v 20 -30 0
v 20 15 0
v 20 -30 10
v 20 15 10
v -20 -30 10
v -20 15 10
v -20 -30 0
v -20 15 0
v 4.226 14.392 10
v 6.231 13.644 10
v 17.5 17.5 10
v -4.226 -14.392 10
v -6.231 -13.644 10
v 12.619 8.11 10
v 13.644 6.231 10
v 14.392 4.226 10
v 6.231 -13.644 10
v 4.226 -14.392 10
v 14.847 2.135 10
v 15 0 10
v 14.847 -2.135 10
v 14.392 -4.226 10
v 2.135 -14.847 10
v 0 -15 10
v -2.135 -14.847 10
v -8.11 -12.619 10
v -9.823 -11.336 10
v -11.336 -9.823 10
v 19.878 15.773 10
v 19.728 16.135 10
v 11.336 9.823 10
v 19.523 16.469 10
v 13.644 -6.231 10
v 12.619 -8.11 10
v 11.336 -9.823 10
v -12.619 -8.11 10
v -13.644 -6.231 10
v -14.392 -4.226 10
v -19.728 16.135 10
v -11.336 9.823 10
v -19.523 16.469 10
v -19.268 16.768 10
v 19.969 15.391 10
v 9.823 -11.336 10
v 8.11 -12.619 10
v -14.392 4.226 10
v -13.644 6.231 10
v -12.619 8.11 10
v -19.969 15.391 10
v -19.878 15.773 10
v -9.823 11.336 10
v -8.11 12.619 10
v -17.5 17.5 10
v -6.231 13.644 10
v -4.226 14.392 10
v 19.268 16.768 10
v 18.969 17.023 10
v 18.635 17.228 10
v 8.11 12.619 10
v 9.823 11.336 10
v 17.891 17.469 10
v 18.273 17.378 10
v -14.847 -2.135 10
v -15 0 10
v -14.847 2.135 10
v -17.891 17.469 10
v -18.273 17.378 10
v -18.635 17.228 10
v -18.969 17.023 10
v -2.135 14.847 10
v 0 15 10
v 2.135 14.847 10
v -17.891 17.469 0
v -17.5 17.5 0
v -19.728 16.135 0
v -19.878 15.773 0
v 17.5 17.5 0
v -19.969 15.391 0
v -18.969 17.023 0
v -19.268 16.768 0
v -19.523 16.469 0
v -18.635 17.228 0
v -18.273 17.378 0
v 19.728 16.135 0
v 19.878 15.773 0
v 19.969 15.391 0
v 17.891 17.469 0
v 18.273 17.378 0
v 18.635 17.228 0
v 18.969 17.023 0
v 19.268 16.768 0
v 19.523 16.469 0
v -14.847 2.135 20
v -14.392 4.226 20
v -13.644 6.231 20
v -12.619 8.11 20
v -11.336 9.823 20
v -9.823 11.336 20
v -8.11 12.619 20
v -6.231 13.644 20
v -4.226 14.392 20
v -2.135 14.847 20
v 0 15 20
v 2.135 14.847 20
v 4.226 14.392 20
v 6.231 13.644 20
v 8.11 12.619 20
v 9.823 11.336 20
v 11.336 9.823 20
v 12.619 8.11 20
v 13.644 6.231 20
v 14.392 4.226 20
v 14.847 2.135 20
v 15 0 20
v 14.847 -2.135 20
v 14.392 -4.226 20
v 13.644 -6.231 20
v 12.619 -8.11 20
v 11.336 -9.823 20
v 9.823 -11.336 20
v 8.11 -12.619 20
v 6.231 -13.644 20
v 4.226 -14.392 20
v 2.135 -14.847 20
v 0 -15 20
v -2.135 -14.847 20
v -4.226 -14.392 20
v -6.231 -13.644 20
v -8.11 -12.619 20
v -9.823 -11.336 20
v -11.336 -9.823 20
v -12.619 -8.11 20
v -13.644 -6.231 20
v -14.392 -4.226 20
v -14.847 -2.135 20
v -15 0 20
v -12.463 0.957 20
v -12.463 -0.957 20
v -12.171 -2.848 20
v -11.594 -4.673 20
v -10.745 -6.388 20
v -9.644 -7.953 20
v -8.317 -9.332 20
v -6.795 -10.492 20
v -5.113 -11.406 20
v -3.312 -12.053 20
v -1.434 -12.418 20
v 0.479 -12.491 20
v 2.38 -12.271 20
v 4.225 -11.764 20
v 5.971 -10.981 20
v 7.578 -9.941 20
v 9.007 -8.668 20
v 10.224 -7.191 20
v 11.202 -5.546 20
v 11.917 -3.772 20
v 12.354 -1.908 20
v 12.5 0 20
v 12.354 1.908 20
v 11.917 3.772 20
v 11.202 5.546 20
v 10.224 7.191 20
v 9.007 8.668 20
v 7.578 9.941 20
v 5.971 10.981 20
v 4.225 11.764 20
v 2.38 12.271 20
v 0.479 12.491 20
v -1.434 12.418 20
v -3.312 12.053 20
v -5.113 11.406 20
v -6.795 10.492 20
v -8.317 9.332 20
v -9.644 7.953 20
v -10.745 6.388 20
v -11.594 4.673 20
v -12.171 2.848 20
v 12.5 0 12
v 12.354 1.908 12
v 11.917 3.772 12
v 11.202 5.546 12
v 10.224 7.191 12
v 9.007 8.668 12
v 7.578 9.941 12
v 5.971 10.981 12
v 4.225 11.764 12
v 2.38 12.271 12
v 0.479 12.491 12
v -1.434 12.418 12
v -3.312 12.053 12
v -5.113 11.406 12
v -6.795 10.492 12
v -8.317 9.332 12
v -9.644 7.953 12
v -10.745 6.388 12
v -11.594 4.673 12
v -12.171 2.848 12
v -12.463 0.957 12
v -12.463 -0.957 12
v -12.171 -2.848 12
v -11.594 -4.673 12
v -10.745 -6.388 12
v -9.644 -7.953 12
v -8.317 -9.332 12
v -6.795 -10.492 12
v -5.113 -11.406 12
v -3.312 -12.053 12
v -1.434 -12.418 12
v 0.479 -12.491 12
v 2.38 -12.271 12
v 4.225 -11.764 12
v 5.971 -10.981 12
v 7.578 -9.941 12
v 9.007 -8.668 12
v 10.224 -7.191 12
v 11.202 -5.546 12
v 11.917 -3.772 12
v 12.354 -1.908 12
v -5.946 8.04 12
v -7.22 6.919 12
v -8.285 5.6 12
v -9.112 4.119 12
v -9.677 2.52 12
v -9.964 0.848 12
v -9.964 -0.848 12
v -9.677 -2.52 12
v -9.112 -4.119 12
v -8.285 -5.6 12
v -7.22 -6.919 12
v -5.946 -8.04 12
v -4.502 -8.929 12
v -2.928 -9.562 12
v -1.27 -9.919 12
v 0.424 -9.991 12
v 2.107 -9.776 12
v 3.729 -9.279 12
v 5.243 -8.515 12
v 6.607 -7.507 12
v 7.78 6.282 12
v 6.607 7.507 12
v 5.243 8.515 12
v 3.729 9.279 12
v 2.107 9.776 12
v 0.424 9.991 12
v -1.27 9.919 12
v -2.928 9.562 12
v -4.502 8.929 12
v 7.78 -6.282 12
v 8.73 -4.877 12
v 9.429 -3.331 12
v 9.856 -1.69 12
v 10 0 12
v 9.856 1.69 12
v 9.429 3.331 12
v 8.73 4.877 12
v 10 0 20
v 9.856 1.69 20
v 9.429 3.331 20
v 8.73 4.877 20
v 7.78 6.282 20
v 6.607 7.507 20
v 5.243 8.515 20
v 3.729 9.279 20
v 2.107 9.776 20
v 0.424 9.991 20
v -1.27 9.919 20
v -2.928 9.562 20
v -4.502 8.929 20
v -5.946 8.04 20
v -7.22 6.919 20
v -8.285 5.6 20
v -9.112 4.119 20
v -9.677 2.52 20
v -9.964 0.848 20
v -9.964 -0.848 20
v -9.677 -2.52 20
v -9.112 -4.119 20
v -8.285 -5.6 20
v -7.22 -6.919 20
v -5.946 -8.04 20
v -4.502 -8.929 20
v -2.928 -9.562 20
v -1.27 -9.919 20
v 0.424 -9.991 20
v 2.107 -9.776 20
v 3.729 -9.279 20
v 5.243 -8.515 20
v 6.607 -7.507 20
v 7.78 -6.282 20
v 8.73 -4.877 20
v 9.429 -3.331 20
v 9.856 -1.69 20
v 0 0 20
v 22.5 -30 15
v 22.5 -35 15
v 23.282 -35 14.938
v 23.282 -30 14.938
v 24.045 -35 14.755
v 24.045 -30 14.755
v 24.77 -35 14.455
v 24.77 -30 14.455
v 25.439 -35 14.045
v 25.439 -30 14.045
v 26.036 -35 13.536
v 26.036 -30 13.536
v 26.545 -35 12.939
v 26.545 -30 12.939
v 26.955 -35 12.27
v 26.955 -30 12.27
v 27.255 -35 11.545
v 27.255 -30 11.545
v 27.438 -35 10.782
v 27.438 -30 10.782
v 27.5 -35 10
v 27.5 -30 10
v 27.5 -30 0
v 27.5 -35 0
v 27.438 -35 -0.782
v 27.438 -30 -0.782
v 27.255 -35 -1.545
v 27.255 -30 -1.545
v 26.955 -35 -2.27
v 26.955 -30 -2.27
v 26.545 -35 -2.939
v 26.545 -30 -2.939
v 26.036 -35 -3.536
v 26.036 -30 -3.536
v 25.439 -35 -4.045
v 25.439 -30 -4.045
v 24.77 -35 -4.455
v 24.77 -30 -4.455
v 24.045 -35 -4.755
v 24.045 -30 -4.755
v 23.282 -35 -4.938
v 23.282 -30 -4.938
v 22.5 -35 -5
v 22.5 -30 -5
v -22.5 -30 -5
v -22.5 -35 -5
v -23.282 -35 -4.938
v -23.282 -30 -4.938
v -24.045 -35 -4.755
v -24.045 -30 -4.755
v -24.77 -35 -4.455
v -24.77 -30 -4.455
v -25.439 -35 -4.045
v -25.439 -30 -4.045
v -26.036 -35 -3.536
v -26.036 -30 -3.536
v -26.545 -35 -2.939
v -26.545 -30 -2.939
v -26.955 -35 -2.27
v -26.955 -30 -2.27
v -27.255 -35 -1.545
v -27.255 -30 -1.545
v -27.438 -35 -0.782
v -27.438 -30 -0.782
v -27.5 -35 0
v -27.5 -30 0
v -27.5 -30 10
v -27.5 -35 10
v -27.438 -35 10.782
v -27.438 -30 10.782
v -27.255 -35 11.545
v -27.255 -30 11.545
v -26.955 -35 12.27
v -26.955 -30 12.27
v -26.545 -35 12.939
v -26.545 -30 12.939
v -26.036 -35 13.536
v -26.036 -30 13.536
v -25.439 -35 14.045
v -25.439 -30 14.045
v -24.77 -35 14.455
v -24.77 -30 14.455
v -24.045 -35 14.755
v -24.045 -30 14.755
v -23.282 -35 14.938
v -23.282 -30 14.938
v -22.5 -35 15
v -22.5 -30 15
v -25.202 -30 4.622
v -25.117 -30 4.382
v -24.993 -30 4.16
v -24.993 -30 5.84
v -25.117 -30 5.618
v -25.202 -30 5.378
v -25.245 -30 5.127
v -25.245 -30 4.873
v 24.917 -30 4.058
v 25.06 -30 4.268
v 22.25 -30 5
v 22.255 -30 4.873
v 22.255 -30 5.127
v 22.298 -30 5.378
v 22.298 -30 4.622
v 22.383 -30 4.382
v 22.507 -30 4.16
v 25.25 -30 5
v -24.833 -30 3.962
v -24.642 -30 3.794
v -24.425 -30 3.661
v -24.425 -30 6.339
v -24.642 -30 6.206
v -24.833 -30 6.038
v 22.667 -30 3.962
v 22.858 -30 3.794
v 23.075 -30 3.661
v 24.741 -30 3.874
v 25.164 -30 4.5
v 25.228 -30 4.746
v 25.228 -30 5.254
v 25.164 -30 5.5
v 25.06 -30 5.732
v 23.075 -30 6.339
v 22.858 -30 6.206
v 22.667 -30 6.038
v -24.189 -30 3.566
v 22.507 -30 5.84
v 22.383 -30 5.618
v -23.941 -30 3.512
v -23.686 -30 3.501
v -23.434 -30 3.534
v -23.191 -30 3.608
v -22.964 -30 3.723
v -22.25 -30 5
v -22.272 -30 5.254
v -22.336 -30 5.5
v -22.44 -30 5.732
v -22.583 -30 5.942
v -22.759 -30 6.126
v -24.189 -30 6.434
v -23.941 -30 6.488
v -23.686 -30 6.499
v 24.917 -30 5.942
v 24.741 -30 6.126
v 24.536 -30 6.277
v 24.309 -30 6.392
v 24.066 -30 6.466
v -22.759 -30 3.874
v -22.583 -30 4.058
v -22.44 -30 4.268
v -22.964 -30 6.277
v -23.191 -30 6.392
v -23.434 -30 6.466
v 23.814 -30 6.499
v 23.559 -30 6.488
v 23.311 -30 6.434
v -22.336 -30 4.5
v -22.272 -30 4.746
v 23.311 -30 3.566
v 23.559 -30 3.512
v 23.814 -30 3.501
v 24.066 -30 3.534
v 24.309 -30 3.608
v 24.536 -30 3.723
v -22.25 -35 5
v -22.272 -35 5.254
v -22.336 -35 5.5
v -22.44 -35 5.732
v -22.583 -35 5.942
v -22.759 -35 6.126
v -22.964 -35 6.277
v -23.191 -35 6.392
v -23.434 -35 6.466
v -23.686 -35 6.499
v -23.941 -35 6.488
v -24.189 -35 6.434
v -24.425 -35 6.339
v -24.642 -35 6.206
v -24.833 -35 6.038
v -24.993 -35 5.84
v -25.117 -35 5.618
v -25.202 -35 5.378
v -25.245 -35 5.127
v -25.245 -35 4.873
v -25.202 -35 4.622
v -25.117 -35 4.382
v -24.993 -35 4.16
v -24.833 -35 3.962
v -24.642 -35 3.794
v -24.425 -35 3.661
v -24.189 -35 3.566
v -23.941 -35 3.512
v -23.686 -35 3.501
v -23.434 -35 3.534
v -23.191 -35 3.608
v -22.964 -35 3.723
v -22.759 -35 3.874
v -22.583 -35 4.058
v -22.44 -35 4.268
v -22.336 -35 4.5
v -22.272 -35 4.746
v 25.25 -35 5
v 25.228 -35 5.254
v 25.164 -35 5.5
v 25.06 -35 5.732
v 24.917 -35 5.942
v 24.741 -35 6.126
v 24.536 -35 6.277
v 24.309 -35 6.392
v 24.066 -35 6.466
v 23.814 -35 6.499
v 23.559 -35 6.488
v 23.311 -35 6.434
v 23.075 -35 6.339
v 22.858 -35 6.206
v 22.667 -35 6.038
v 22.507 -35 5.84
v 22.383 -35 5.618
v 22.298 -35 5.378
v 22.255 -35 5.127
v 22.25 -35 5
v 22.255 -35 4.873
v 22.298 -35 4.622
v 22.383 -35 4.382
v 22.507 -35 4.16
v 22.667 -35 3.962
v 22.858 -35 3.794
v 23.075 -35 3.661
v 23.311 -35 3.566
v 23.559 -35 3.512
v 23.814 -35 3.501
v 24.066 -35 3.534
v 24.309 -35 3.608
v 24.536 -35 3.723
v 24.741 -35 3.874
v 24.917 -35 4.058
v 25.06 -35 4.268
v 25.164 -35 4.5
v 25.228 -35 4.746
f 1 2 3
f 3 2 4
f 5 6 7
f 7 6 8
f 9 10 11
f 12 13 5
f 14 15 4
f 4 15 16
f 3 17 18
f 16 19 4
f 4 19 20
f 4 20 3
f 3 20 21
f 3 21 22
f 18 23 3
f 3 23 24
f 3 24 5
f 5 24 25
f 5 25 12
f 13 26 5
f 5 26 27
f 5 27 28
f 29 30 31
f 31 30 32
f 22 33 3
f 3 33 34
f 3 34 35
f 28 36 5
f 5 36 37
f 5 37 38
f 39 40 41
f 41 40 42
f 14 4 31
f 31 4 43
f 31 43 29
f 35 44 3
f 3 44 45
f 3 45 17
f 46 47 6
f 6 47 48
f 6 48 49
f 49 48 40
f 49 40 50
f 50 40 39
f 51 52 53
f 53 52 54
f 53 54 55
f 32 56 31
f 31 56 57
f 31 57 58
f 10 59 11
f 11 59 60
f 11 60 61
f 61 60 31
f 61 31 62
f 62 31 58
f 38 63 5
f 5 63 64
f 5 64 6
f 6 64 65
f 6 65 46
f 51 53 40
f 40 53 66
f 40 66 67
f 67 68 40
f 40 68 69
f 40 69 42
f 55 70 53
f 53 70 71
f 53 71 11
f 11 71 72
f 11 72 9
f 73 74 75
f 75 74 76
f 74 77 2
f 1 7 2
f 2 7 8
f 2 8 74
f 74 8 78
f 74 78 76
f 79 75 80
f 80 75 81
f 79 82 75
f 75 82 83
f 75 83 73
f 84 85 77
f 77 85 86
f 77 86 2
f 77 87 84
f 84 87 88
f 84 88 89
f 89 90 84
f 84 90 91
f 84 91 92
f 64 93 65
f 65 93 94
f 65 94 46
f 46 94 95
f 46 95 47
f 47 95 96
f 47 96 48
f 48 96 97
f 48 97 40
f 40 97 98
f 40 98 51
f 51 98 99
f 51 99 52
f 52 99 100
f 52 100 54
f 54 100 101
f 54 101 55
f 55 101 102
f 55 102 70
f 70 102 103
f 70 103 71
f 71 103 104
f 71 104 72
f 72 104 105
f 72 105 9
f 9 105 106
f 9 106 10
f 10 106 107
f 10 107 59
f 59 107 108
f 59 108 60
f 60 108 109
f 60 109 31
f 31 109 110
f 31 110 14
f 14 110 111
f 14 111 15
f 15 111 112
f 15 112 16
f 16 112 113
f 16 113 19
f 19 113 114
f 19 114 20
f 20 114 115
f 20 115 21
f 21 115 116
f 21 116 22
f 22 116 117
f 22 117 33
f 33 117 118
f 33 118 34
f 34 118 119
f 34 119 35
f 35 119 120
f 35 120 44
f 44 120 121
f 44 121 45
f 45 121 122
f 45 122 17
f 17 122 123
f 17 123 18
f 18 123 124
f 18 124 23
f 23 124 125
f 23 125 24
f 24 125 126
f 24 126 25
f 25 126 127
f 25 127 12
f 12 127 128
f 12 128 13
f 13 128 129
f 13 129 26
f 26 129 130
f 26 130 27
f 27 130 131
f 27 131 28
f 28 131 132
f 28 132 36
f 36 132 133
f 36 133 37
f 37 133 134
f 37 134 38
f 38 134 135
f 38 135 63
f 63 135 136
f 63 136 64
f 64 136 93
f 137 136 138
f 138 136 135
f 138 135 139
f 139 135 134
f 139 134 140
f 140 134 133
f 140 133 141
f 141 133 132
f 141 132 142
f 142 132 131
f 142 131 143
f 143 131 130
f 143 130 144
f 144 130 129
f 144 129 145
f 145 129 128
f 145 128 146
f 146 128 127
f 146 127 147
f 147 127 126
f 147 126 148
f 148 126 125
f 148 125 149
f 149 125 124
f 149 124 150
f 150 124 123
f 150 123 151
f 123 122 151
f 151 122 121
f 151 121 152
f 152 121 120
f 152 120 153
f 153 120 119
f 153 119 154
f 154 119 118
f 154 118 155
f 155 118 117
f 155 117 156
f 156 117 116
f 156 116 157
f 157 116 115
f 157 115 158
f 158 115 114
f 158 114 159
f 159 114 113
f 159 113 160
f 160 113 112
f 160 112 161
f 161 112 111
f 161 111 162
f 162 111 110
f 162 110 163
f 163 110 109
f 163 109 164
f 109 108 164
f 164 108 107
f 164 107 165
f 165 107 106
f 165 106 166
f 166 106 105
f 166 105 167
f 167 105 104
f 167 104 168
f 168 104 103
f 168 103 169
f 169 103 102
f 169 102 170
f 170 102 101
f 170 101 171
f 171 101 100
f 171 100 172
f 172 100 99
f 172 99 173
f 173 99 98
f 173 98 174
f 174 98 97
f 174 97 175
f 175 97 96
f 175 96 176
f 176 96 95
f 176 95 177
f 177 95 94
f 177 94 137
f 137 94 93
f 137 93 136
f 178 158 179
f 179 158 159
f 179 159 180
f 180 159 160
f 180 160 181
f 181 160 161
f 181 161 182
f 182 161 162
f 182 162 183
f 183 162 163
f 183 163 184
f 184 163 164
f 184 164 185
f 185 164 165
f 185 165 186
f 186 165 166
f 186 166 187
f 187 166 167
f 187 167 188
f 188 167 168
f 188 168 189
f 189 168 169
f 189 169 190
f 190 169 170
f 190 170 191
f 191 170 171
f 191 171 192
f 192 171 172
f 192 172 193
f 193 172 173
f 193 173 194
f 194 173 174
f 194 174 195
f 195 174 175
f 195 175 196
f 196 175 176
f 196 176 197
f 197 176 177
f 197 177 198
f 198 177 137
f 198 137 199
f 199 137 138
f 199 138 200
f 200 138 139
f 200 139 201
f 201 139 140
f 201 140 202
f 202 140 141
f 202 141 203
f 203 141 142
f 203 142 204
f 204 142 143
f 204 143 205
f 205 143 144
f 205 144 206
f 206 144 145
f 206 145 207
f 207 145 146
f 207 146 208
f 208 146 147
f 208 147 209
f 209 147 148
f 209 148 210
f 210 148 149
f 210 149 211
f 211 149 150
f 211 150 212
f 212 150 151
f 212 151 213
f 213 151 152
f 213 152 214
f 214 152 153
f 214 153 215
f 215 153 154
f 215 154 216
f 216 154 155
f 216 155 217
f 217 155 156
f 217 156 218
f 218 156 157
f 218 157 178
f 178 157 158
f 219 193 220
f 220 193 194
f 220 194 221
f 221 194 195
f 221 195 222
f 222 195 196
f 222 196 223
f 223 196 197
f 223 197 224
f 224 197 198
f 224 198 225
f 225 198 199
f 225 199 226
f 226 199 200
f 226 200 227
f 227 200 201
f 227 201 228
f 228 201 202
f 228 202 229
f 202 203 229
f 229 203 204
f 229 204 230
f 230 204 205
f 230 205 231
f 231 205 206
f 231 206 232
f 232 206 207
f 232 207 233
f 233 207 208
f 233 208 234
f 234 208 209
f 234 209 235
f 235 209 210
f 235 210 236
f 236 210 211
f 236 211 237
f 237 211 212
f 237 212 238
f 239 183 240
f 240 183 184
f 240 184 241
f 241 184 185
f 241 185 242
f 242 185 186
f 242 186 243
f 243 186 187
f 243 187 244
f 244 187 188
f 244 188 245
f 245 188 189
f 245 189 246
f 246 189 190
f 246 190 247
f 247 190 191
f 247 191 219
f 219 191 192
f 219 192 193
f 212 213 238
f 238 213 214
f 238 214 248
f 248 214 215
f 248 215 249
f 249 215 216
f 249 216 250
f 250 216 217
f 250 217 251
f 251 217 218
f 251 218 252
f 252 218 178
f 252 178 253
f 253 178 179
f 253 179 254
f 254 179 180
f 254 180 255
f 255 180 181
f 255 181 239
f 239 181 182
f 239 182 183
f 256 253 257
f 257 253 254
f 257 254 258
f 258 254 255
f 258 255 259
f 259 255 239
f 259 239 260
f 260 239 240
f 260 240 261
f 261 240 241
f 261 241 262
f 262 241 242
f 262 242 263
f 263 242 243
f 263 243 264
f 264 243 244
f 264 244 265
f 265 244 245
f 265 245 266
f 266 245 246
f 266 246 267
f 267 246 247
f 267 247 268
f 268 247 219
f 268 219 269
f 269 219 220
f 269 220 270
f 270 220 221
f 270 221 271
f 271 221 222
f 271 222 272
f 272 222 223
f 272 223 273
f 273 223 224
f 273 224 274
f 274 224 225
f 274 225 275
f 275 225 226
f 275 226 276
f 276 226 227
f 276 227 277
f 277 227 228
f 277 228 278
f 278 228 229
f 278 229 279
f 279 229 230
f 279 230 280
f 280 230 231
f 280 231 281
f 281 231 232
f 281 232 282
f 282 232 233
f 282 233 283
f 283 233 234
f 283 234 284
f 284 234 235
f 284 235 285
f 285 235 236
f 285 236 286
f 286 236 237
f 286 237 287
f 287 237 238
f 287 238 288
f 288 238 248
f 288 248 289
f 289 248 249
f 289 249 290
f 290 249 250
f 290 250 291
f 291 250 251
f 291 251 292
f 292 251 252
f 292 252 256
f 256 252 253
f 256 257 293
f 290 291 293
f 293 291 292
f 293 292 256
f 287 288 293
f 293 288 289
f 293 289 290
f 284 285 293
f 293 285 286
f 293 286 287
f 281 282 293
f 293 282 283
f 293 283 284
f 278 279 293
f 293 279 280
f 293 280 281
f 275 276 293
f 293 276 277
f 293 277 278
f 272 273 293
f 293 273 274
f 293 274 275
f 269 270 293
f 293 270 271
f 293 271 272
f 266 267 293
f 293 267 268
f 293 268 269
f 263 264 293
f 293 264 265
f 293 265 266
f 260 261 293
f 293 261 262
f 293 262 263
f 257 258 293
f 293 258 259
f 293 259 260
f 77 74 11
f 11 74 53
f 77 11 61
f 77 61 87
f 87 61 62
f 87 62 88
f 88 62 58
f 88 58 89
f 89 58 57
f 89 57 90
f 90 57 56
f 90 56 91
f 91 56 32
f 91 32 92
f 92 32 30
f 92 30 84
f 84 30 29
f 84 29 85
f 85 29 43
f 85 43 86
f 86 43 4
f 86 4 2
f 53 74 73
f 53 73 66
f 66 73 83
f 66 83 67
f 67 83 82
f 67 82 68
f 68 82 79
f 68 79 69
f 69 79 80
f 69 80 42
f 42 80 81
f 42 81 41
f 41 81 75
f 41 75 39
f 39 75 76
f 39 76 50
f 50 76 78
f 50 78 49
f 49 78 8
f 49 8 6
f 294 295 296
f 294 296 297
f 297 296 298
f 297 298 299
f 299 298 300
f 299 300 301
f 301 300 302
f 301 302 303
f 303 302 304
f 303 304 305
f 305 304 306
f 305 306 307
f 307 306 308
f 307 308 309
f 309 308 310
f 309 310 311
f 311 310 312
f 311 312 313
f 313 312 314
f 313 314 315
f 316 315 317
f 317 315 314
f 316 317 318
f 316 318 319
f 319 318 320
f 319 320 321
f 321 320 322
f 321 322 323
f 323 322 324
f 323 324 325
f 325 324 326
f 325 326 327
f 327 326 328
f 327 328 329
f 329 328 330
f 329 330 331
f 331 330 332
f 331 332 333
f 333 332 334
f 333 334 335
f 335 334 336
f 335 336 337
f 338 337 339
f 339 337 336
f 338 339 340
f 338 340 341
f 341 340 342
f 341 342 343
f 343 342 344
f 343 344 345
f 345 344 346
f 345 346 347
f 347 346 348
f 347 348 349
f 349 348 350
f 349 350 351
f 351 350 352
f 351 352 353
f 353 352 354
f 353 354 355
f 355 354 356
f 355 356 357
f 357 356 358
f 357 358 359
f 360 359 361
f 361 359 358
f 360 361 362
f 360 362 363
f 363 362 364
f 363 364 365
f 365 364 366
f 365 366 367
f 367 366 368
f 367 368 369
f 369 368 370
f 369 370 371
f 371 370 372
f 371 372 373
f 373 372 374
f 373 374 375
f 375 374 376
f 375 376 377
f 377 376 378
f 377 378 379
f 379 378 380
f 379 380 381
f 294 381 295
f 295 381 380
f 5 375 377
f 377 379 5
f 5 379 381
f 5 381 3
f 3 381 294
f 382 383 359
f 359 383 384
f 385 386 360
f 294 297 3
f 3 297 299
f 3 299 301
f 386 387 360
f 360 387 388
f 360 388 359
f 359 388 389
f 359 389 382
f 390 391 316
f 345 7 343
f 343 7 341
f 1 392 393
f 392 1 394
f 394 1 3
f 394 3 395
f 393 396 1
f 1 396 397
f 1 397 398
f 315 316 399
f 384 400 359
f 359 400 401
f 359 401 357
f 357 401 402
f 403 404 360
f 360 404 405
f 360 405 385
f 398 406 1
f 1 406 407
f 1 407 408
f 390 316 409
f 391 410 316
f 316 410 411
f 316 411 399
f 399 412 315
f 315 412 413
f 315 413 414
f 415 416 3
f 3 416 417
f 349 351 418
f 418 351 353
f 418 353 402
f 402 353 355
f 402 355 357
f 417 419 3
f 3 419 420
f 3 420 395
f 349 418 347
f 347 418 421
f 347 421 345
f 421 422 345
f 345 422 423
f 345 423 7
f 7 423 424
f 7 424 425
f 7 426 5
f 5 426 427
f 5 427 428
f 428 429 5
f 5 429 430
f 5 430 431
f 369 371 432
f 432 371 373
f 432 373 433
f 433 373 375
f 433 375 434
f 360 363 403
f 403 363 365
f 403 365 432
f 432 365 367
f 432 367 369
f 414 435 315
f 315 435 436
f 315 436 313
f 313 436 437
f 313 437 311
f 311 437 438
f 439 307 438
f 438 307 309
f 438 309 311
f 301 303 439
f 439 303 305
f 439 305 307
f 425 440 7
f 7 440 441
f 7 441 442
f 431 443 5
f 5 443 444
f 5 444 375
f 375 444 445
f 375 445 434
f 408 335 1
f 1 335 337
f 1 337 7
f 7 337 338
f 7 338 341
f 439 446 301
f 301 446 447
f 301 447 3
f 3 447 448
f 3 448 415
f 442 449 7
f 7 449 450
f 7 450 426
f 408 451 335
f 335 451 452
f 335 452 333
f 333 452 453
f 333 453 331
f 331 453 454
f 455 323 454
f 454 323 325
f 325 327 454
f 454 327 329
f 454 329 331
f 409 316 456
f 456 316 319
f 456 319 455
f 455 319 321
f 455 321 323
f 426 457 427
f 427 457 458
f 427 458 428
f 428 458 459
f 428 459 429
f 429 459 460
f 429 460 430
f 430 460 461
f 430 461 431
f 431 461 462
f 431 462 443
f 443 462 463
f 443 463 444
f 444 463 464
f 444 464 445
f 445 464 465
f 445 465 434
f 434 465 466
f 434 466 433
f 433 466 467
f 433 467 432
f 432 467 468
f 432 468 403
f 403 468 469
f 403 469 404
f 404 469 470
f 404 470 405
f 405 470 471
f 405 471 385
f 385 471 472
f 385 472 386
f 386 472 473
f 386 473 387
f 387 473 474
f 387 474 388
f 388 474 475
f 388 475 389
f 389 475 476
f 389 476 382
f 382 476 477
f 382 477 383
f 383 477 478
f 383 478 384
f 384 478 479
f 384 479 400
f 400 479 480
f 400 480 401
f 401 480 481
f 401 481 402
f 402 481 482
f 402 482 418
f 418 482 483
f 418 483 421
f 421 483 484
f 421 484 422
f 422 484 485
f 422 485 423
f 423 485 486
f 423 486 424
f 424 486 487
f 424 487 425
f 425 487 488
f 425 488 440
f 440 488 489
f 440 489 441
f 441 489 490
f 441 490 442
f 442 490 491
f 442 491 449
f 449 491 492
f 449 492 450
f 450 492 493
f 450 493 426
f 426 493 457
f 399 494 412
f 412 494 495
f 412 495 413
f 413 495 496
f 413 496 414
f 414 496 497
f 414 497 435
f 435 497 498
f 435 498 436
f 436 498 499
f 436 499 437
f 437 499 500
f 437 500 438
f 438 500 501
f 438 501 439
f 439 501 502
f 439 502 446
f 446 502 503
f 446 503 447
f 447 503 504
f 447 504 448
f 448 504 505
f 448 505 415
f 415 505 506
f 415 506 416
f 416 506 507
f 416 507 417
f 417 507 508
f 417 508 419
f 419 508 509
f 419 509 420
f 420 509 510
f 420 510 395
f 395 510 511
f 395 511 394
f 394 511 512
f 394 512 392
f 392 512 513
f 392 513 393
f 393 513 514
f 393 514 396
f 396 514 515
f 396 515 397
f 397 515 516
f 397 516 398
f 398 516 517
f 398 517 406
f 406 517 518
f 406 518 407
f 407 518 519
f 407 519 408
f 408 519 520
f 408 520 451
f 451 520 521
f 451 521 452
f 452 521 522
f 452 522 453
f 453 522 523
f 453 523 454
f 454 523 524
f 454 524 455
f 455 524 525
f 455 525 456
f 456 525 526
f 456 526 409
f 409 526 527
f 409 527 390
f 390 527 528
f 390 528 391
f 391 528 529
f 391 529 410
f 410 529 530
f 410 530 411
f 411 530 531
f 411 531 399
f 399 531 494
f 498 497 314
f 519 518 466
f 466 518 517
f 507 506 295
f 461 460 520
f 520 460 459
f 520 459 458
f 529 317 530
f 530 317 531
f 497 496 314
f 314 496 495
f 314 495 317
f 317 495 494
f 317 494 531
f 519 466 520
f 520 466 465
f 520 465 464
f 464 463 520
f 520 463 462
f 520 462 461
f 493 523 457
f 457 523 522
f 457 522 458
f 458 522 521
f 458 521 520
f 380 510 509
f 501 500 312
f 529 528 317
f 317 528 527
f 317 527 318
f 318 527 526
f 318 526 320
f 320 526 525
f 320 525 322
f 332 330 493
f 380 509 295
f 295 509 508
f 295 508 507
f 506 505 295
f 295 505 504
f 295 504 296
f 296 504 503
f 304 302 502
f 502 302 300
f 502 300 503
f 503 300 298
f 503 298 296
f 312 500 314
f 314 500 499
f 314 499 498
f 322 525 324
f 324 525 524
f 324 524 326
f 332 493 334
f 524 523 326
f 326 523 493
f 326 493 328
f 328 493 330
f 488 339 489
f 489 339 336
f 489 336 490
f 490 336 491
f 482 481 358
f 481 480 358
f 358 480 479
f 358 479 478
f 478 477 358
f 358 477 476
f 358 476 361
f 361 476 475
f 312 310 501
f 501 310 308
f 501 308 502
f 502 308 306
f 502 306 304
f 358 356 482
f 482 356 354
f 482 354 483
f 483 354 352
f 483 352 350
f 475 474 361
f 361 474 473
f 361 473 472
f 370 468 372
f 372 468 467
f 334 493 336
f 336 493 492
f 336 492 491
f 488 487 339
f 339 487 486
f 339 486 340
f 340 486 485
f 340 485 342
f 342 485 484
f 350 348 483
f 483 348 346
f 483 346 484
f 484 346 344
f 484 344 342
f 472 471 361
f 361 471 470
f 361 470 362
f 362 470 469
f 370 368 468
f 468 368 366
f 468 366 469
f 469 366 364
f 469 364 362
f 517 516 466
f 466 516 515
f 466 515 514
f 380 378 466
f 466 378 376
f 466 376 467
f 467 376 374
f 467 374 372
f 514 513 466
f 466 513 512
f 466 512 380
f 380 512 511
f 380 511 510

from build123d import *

# Parameters (mm, degrees)
SKETCH1_W           = 40
SKETCH1_H           = 70
BOSS_EXTRUDE1_DEPTH = 10
SKETCH4_R           = 15
BOSS_EXTRUDE3_DEPTH = 10
SKETCH5_R           = 12.5
SKETCH5_R_2         = 10
CUT_EXTRUDE2_DEPTH  = 8
SKETCH6_W           = 40
SKETCH6_H           = 10
CUT_EXTRUDE3_DEPTH  = 17.5
FILLET4_R           = 2.5
SKETCH11_R          = 1.5
SKETCH11_W          = 40
SKETCH11_H          = 10
BOSS_EXTRUDE4_DEPTH = 5


with BuildPart() as part:
    # Sketch1 → Boss-Extrude1 (new body)
    with BuildSketch(Plane.XY):
        Rectangle(SKETCH1_W, SKETCH1_H)
    extrude(amount=BOSS_EXTRUDE1_DEPTH)

    # Sketch4 → Boss-Extrude3 (add)
    with BuildSketch(Plane.XY.offset(10)):
        Circle(SKETCH4_R)
    extrude(amount=BOSS_EXTRUDE3_DEPTH)

    # Sketch5 → Cut-Extrude2 (cut)
    with BuildSketch(Plane.XY.offset(20)):
        Circle(SKETCH5_R)
        Circle(SKETCH5_R_2, mode=Mode.SUBTRACT)
    extrude(amount=-CUT_EXTRUDE2_DEPTH, mode=Mode.SUBTRACT)

    # Sketch6 → Cut-Extrude3 (cut)
    with BuildSketch(Plane(origin=(0, 35, 0), x_dir=(1, 0, 0), z_dir=(0, 1, 0))):
        with Locations((0, -5)):
            Rectangle(SKETCH6_W, SKETCH6_H)
    extrude(amount=-CUT_EXTRUDE3_DEPTH, mode=Mode.SUBTRACT)

    # Fillet4
    fillet4_edges = [part.edges().sort_by_distance(p)[0] for p in [
        (-20, 17.5, 5),
        (20, 17.5, 5),
    ]]
    fillet(fillet4_edges, radius=FILLET4_R)

    # Sketch11 → Boss-Extrude4 (add)
    with BuildSketch(Plane.XZ.offset(35)):
        with BuildLine():
            Line((-22.5, 15), (22.5, 15))
            ThreePointArc((22.5, 15), (26.035533906, 13.535533906), (27.5, 10))
            Line((27.5, 10), (27.5, 0))
            ThreePointArc((27.5, 0), (26.035533906, -3.535533906), (22.5, -5))
            Line((22.5, -5), (-22.5, -5))
            ThreePointArc((-22.5, -5), (-26.035533906, -3.535533906), (-27.5, 0))
            Line((-27.5, 0), (-27.5, 10))
            ThreePointArc((-27.5, 10), (-26.035533906, 13.535533906), (-22.5, 15))
        make_face()
        with Locations((-23.75, 5)):
            Circle(SKETCH11_R, mode=Mode.SUBTRACT)
        with Locations(Location((23.75, 5, 0), (0, 0, 180))):
            Circle(SKETCH11_R, mode=Mode.SUBTRACT)
        with Locations((0, 5)):
            Rectangle(SKETCH11_W, SKETCH11_H, mode=Mode.SUBTRACT)
    extrude(amount=-BOSS_EXTRUDE4_DEPTH)


solid = part.part
